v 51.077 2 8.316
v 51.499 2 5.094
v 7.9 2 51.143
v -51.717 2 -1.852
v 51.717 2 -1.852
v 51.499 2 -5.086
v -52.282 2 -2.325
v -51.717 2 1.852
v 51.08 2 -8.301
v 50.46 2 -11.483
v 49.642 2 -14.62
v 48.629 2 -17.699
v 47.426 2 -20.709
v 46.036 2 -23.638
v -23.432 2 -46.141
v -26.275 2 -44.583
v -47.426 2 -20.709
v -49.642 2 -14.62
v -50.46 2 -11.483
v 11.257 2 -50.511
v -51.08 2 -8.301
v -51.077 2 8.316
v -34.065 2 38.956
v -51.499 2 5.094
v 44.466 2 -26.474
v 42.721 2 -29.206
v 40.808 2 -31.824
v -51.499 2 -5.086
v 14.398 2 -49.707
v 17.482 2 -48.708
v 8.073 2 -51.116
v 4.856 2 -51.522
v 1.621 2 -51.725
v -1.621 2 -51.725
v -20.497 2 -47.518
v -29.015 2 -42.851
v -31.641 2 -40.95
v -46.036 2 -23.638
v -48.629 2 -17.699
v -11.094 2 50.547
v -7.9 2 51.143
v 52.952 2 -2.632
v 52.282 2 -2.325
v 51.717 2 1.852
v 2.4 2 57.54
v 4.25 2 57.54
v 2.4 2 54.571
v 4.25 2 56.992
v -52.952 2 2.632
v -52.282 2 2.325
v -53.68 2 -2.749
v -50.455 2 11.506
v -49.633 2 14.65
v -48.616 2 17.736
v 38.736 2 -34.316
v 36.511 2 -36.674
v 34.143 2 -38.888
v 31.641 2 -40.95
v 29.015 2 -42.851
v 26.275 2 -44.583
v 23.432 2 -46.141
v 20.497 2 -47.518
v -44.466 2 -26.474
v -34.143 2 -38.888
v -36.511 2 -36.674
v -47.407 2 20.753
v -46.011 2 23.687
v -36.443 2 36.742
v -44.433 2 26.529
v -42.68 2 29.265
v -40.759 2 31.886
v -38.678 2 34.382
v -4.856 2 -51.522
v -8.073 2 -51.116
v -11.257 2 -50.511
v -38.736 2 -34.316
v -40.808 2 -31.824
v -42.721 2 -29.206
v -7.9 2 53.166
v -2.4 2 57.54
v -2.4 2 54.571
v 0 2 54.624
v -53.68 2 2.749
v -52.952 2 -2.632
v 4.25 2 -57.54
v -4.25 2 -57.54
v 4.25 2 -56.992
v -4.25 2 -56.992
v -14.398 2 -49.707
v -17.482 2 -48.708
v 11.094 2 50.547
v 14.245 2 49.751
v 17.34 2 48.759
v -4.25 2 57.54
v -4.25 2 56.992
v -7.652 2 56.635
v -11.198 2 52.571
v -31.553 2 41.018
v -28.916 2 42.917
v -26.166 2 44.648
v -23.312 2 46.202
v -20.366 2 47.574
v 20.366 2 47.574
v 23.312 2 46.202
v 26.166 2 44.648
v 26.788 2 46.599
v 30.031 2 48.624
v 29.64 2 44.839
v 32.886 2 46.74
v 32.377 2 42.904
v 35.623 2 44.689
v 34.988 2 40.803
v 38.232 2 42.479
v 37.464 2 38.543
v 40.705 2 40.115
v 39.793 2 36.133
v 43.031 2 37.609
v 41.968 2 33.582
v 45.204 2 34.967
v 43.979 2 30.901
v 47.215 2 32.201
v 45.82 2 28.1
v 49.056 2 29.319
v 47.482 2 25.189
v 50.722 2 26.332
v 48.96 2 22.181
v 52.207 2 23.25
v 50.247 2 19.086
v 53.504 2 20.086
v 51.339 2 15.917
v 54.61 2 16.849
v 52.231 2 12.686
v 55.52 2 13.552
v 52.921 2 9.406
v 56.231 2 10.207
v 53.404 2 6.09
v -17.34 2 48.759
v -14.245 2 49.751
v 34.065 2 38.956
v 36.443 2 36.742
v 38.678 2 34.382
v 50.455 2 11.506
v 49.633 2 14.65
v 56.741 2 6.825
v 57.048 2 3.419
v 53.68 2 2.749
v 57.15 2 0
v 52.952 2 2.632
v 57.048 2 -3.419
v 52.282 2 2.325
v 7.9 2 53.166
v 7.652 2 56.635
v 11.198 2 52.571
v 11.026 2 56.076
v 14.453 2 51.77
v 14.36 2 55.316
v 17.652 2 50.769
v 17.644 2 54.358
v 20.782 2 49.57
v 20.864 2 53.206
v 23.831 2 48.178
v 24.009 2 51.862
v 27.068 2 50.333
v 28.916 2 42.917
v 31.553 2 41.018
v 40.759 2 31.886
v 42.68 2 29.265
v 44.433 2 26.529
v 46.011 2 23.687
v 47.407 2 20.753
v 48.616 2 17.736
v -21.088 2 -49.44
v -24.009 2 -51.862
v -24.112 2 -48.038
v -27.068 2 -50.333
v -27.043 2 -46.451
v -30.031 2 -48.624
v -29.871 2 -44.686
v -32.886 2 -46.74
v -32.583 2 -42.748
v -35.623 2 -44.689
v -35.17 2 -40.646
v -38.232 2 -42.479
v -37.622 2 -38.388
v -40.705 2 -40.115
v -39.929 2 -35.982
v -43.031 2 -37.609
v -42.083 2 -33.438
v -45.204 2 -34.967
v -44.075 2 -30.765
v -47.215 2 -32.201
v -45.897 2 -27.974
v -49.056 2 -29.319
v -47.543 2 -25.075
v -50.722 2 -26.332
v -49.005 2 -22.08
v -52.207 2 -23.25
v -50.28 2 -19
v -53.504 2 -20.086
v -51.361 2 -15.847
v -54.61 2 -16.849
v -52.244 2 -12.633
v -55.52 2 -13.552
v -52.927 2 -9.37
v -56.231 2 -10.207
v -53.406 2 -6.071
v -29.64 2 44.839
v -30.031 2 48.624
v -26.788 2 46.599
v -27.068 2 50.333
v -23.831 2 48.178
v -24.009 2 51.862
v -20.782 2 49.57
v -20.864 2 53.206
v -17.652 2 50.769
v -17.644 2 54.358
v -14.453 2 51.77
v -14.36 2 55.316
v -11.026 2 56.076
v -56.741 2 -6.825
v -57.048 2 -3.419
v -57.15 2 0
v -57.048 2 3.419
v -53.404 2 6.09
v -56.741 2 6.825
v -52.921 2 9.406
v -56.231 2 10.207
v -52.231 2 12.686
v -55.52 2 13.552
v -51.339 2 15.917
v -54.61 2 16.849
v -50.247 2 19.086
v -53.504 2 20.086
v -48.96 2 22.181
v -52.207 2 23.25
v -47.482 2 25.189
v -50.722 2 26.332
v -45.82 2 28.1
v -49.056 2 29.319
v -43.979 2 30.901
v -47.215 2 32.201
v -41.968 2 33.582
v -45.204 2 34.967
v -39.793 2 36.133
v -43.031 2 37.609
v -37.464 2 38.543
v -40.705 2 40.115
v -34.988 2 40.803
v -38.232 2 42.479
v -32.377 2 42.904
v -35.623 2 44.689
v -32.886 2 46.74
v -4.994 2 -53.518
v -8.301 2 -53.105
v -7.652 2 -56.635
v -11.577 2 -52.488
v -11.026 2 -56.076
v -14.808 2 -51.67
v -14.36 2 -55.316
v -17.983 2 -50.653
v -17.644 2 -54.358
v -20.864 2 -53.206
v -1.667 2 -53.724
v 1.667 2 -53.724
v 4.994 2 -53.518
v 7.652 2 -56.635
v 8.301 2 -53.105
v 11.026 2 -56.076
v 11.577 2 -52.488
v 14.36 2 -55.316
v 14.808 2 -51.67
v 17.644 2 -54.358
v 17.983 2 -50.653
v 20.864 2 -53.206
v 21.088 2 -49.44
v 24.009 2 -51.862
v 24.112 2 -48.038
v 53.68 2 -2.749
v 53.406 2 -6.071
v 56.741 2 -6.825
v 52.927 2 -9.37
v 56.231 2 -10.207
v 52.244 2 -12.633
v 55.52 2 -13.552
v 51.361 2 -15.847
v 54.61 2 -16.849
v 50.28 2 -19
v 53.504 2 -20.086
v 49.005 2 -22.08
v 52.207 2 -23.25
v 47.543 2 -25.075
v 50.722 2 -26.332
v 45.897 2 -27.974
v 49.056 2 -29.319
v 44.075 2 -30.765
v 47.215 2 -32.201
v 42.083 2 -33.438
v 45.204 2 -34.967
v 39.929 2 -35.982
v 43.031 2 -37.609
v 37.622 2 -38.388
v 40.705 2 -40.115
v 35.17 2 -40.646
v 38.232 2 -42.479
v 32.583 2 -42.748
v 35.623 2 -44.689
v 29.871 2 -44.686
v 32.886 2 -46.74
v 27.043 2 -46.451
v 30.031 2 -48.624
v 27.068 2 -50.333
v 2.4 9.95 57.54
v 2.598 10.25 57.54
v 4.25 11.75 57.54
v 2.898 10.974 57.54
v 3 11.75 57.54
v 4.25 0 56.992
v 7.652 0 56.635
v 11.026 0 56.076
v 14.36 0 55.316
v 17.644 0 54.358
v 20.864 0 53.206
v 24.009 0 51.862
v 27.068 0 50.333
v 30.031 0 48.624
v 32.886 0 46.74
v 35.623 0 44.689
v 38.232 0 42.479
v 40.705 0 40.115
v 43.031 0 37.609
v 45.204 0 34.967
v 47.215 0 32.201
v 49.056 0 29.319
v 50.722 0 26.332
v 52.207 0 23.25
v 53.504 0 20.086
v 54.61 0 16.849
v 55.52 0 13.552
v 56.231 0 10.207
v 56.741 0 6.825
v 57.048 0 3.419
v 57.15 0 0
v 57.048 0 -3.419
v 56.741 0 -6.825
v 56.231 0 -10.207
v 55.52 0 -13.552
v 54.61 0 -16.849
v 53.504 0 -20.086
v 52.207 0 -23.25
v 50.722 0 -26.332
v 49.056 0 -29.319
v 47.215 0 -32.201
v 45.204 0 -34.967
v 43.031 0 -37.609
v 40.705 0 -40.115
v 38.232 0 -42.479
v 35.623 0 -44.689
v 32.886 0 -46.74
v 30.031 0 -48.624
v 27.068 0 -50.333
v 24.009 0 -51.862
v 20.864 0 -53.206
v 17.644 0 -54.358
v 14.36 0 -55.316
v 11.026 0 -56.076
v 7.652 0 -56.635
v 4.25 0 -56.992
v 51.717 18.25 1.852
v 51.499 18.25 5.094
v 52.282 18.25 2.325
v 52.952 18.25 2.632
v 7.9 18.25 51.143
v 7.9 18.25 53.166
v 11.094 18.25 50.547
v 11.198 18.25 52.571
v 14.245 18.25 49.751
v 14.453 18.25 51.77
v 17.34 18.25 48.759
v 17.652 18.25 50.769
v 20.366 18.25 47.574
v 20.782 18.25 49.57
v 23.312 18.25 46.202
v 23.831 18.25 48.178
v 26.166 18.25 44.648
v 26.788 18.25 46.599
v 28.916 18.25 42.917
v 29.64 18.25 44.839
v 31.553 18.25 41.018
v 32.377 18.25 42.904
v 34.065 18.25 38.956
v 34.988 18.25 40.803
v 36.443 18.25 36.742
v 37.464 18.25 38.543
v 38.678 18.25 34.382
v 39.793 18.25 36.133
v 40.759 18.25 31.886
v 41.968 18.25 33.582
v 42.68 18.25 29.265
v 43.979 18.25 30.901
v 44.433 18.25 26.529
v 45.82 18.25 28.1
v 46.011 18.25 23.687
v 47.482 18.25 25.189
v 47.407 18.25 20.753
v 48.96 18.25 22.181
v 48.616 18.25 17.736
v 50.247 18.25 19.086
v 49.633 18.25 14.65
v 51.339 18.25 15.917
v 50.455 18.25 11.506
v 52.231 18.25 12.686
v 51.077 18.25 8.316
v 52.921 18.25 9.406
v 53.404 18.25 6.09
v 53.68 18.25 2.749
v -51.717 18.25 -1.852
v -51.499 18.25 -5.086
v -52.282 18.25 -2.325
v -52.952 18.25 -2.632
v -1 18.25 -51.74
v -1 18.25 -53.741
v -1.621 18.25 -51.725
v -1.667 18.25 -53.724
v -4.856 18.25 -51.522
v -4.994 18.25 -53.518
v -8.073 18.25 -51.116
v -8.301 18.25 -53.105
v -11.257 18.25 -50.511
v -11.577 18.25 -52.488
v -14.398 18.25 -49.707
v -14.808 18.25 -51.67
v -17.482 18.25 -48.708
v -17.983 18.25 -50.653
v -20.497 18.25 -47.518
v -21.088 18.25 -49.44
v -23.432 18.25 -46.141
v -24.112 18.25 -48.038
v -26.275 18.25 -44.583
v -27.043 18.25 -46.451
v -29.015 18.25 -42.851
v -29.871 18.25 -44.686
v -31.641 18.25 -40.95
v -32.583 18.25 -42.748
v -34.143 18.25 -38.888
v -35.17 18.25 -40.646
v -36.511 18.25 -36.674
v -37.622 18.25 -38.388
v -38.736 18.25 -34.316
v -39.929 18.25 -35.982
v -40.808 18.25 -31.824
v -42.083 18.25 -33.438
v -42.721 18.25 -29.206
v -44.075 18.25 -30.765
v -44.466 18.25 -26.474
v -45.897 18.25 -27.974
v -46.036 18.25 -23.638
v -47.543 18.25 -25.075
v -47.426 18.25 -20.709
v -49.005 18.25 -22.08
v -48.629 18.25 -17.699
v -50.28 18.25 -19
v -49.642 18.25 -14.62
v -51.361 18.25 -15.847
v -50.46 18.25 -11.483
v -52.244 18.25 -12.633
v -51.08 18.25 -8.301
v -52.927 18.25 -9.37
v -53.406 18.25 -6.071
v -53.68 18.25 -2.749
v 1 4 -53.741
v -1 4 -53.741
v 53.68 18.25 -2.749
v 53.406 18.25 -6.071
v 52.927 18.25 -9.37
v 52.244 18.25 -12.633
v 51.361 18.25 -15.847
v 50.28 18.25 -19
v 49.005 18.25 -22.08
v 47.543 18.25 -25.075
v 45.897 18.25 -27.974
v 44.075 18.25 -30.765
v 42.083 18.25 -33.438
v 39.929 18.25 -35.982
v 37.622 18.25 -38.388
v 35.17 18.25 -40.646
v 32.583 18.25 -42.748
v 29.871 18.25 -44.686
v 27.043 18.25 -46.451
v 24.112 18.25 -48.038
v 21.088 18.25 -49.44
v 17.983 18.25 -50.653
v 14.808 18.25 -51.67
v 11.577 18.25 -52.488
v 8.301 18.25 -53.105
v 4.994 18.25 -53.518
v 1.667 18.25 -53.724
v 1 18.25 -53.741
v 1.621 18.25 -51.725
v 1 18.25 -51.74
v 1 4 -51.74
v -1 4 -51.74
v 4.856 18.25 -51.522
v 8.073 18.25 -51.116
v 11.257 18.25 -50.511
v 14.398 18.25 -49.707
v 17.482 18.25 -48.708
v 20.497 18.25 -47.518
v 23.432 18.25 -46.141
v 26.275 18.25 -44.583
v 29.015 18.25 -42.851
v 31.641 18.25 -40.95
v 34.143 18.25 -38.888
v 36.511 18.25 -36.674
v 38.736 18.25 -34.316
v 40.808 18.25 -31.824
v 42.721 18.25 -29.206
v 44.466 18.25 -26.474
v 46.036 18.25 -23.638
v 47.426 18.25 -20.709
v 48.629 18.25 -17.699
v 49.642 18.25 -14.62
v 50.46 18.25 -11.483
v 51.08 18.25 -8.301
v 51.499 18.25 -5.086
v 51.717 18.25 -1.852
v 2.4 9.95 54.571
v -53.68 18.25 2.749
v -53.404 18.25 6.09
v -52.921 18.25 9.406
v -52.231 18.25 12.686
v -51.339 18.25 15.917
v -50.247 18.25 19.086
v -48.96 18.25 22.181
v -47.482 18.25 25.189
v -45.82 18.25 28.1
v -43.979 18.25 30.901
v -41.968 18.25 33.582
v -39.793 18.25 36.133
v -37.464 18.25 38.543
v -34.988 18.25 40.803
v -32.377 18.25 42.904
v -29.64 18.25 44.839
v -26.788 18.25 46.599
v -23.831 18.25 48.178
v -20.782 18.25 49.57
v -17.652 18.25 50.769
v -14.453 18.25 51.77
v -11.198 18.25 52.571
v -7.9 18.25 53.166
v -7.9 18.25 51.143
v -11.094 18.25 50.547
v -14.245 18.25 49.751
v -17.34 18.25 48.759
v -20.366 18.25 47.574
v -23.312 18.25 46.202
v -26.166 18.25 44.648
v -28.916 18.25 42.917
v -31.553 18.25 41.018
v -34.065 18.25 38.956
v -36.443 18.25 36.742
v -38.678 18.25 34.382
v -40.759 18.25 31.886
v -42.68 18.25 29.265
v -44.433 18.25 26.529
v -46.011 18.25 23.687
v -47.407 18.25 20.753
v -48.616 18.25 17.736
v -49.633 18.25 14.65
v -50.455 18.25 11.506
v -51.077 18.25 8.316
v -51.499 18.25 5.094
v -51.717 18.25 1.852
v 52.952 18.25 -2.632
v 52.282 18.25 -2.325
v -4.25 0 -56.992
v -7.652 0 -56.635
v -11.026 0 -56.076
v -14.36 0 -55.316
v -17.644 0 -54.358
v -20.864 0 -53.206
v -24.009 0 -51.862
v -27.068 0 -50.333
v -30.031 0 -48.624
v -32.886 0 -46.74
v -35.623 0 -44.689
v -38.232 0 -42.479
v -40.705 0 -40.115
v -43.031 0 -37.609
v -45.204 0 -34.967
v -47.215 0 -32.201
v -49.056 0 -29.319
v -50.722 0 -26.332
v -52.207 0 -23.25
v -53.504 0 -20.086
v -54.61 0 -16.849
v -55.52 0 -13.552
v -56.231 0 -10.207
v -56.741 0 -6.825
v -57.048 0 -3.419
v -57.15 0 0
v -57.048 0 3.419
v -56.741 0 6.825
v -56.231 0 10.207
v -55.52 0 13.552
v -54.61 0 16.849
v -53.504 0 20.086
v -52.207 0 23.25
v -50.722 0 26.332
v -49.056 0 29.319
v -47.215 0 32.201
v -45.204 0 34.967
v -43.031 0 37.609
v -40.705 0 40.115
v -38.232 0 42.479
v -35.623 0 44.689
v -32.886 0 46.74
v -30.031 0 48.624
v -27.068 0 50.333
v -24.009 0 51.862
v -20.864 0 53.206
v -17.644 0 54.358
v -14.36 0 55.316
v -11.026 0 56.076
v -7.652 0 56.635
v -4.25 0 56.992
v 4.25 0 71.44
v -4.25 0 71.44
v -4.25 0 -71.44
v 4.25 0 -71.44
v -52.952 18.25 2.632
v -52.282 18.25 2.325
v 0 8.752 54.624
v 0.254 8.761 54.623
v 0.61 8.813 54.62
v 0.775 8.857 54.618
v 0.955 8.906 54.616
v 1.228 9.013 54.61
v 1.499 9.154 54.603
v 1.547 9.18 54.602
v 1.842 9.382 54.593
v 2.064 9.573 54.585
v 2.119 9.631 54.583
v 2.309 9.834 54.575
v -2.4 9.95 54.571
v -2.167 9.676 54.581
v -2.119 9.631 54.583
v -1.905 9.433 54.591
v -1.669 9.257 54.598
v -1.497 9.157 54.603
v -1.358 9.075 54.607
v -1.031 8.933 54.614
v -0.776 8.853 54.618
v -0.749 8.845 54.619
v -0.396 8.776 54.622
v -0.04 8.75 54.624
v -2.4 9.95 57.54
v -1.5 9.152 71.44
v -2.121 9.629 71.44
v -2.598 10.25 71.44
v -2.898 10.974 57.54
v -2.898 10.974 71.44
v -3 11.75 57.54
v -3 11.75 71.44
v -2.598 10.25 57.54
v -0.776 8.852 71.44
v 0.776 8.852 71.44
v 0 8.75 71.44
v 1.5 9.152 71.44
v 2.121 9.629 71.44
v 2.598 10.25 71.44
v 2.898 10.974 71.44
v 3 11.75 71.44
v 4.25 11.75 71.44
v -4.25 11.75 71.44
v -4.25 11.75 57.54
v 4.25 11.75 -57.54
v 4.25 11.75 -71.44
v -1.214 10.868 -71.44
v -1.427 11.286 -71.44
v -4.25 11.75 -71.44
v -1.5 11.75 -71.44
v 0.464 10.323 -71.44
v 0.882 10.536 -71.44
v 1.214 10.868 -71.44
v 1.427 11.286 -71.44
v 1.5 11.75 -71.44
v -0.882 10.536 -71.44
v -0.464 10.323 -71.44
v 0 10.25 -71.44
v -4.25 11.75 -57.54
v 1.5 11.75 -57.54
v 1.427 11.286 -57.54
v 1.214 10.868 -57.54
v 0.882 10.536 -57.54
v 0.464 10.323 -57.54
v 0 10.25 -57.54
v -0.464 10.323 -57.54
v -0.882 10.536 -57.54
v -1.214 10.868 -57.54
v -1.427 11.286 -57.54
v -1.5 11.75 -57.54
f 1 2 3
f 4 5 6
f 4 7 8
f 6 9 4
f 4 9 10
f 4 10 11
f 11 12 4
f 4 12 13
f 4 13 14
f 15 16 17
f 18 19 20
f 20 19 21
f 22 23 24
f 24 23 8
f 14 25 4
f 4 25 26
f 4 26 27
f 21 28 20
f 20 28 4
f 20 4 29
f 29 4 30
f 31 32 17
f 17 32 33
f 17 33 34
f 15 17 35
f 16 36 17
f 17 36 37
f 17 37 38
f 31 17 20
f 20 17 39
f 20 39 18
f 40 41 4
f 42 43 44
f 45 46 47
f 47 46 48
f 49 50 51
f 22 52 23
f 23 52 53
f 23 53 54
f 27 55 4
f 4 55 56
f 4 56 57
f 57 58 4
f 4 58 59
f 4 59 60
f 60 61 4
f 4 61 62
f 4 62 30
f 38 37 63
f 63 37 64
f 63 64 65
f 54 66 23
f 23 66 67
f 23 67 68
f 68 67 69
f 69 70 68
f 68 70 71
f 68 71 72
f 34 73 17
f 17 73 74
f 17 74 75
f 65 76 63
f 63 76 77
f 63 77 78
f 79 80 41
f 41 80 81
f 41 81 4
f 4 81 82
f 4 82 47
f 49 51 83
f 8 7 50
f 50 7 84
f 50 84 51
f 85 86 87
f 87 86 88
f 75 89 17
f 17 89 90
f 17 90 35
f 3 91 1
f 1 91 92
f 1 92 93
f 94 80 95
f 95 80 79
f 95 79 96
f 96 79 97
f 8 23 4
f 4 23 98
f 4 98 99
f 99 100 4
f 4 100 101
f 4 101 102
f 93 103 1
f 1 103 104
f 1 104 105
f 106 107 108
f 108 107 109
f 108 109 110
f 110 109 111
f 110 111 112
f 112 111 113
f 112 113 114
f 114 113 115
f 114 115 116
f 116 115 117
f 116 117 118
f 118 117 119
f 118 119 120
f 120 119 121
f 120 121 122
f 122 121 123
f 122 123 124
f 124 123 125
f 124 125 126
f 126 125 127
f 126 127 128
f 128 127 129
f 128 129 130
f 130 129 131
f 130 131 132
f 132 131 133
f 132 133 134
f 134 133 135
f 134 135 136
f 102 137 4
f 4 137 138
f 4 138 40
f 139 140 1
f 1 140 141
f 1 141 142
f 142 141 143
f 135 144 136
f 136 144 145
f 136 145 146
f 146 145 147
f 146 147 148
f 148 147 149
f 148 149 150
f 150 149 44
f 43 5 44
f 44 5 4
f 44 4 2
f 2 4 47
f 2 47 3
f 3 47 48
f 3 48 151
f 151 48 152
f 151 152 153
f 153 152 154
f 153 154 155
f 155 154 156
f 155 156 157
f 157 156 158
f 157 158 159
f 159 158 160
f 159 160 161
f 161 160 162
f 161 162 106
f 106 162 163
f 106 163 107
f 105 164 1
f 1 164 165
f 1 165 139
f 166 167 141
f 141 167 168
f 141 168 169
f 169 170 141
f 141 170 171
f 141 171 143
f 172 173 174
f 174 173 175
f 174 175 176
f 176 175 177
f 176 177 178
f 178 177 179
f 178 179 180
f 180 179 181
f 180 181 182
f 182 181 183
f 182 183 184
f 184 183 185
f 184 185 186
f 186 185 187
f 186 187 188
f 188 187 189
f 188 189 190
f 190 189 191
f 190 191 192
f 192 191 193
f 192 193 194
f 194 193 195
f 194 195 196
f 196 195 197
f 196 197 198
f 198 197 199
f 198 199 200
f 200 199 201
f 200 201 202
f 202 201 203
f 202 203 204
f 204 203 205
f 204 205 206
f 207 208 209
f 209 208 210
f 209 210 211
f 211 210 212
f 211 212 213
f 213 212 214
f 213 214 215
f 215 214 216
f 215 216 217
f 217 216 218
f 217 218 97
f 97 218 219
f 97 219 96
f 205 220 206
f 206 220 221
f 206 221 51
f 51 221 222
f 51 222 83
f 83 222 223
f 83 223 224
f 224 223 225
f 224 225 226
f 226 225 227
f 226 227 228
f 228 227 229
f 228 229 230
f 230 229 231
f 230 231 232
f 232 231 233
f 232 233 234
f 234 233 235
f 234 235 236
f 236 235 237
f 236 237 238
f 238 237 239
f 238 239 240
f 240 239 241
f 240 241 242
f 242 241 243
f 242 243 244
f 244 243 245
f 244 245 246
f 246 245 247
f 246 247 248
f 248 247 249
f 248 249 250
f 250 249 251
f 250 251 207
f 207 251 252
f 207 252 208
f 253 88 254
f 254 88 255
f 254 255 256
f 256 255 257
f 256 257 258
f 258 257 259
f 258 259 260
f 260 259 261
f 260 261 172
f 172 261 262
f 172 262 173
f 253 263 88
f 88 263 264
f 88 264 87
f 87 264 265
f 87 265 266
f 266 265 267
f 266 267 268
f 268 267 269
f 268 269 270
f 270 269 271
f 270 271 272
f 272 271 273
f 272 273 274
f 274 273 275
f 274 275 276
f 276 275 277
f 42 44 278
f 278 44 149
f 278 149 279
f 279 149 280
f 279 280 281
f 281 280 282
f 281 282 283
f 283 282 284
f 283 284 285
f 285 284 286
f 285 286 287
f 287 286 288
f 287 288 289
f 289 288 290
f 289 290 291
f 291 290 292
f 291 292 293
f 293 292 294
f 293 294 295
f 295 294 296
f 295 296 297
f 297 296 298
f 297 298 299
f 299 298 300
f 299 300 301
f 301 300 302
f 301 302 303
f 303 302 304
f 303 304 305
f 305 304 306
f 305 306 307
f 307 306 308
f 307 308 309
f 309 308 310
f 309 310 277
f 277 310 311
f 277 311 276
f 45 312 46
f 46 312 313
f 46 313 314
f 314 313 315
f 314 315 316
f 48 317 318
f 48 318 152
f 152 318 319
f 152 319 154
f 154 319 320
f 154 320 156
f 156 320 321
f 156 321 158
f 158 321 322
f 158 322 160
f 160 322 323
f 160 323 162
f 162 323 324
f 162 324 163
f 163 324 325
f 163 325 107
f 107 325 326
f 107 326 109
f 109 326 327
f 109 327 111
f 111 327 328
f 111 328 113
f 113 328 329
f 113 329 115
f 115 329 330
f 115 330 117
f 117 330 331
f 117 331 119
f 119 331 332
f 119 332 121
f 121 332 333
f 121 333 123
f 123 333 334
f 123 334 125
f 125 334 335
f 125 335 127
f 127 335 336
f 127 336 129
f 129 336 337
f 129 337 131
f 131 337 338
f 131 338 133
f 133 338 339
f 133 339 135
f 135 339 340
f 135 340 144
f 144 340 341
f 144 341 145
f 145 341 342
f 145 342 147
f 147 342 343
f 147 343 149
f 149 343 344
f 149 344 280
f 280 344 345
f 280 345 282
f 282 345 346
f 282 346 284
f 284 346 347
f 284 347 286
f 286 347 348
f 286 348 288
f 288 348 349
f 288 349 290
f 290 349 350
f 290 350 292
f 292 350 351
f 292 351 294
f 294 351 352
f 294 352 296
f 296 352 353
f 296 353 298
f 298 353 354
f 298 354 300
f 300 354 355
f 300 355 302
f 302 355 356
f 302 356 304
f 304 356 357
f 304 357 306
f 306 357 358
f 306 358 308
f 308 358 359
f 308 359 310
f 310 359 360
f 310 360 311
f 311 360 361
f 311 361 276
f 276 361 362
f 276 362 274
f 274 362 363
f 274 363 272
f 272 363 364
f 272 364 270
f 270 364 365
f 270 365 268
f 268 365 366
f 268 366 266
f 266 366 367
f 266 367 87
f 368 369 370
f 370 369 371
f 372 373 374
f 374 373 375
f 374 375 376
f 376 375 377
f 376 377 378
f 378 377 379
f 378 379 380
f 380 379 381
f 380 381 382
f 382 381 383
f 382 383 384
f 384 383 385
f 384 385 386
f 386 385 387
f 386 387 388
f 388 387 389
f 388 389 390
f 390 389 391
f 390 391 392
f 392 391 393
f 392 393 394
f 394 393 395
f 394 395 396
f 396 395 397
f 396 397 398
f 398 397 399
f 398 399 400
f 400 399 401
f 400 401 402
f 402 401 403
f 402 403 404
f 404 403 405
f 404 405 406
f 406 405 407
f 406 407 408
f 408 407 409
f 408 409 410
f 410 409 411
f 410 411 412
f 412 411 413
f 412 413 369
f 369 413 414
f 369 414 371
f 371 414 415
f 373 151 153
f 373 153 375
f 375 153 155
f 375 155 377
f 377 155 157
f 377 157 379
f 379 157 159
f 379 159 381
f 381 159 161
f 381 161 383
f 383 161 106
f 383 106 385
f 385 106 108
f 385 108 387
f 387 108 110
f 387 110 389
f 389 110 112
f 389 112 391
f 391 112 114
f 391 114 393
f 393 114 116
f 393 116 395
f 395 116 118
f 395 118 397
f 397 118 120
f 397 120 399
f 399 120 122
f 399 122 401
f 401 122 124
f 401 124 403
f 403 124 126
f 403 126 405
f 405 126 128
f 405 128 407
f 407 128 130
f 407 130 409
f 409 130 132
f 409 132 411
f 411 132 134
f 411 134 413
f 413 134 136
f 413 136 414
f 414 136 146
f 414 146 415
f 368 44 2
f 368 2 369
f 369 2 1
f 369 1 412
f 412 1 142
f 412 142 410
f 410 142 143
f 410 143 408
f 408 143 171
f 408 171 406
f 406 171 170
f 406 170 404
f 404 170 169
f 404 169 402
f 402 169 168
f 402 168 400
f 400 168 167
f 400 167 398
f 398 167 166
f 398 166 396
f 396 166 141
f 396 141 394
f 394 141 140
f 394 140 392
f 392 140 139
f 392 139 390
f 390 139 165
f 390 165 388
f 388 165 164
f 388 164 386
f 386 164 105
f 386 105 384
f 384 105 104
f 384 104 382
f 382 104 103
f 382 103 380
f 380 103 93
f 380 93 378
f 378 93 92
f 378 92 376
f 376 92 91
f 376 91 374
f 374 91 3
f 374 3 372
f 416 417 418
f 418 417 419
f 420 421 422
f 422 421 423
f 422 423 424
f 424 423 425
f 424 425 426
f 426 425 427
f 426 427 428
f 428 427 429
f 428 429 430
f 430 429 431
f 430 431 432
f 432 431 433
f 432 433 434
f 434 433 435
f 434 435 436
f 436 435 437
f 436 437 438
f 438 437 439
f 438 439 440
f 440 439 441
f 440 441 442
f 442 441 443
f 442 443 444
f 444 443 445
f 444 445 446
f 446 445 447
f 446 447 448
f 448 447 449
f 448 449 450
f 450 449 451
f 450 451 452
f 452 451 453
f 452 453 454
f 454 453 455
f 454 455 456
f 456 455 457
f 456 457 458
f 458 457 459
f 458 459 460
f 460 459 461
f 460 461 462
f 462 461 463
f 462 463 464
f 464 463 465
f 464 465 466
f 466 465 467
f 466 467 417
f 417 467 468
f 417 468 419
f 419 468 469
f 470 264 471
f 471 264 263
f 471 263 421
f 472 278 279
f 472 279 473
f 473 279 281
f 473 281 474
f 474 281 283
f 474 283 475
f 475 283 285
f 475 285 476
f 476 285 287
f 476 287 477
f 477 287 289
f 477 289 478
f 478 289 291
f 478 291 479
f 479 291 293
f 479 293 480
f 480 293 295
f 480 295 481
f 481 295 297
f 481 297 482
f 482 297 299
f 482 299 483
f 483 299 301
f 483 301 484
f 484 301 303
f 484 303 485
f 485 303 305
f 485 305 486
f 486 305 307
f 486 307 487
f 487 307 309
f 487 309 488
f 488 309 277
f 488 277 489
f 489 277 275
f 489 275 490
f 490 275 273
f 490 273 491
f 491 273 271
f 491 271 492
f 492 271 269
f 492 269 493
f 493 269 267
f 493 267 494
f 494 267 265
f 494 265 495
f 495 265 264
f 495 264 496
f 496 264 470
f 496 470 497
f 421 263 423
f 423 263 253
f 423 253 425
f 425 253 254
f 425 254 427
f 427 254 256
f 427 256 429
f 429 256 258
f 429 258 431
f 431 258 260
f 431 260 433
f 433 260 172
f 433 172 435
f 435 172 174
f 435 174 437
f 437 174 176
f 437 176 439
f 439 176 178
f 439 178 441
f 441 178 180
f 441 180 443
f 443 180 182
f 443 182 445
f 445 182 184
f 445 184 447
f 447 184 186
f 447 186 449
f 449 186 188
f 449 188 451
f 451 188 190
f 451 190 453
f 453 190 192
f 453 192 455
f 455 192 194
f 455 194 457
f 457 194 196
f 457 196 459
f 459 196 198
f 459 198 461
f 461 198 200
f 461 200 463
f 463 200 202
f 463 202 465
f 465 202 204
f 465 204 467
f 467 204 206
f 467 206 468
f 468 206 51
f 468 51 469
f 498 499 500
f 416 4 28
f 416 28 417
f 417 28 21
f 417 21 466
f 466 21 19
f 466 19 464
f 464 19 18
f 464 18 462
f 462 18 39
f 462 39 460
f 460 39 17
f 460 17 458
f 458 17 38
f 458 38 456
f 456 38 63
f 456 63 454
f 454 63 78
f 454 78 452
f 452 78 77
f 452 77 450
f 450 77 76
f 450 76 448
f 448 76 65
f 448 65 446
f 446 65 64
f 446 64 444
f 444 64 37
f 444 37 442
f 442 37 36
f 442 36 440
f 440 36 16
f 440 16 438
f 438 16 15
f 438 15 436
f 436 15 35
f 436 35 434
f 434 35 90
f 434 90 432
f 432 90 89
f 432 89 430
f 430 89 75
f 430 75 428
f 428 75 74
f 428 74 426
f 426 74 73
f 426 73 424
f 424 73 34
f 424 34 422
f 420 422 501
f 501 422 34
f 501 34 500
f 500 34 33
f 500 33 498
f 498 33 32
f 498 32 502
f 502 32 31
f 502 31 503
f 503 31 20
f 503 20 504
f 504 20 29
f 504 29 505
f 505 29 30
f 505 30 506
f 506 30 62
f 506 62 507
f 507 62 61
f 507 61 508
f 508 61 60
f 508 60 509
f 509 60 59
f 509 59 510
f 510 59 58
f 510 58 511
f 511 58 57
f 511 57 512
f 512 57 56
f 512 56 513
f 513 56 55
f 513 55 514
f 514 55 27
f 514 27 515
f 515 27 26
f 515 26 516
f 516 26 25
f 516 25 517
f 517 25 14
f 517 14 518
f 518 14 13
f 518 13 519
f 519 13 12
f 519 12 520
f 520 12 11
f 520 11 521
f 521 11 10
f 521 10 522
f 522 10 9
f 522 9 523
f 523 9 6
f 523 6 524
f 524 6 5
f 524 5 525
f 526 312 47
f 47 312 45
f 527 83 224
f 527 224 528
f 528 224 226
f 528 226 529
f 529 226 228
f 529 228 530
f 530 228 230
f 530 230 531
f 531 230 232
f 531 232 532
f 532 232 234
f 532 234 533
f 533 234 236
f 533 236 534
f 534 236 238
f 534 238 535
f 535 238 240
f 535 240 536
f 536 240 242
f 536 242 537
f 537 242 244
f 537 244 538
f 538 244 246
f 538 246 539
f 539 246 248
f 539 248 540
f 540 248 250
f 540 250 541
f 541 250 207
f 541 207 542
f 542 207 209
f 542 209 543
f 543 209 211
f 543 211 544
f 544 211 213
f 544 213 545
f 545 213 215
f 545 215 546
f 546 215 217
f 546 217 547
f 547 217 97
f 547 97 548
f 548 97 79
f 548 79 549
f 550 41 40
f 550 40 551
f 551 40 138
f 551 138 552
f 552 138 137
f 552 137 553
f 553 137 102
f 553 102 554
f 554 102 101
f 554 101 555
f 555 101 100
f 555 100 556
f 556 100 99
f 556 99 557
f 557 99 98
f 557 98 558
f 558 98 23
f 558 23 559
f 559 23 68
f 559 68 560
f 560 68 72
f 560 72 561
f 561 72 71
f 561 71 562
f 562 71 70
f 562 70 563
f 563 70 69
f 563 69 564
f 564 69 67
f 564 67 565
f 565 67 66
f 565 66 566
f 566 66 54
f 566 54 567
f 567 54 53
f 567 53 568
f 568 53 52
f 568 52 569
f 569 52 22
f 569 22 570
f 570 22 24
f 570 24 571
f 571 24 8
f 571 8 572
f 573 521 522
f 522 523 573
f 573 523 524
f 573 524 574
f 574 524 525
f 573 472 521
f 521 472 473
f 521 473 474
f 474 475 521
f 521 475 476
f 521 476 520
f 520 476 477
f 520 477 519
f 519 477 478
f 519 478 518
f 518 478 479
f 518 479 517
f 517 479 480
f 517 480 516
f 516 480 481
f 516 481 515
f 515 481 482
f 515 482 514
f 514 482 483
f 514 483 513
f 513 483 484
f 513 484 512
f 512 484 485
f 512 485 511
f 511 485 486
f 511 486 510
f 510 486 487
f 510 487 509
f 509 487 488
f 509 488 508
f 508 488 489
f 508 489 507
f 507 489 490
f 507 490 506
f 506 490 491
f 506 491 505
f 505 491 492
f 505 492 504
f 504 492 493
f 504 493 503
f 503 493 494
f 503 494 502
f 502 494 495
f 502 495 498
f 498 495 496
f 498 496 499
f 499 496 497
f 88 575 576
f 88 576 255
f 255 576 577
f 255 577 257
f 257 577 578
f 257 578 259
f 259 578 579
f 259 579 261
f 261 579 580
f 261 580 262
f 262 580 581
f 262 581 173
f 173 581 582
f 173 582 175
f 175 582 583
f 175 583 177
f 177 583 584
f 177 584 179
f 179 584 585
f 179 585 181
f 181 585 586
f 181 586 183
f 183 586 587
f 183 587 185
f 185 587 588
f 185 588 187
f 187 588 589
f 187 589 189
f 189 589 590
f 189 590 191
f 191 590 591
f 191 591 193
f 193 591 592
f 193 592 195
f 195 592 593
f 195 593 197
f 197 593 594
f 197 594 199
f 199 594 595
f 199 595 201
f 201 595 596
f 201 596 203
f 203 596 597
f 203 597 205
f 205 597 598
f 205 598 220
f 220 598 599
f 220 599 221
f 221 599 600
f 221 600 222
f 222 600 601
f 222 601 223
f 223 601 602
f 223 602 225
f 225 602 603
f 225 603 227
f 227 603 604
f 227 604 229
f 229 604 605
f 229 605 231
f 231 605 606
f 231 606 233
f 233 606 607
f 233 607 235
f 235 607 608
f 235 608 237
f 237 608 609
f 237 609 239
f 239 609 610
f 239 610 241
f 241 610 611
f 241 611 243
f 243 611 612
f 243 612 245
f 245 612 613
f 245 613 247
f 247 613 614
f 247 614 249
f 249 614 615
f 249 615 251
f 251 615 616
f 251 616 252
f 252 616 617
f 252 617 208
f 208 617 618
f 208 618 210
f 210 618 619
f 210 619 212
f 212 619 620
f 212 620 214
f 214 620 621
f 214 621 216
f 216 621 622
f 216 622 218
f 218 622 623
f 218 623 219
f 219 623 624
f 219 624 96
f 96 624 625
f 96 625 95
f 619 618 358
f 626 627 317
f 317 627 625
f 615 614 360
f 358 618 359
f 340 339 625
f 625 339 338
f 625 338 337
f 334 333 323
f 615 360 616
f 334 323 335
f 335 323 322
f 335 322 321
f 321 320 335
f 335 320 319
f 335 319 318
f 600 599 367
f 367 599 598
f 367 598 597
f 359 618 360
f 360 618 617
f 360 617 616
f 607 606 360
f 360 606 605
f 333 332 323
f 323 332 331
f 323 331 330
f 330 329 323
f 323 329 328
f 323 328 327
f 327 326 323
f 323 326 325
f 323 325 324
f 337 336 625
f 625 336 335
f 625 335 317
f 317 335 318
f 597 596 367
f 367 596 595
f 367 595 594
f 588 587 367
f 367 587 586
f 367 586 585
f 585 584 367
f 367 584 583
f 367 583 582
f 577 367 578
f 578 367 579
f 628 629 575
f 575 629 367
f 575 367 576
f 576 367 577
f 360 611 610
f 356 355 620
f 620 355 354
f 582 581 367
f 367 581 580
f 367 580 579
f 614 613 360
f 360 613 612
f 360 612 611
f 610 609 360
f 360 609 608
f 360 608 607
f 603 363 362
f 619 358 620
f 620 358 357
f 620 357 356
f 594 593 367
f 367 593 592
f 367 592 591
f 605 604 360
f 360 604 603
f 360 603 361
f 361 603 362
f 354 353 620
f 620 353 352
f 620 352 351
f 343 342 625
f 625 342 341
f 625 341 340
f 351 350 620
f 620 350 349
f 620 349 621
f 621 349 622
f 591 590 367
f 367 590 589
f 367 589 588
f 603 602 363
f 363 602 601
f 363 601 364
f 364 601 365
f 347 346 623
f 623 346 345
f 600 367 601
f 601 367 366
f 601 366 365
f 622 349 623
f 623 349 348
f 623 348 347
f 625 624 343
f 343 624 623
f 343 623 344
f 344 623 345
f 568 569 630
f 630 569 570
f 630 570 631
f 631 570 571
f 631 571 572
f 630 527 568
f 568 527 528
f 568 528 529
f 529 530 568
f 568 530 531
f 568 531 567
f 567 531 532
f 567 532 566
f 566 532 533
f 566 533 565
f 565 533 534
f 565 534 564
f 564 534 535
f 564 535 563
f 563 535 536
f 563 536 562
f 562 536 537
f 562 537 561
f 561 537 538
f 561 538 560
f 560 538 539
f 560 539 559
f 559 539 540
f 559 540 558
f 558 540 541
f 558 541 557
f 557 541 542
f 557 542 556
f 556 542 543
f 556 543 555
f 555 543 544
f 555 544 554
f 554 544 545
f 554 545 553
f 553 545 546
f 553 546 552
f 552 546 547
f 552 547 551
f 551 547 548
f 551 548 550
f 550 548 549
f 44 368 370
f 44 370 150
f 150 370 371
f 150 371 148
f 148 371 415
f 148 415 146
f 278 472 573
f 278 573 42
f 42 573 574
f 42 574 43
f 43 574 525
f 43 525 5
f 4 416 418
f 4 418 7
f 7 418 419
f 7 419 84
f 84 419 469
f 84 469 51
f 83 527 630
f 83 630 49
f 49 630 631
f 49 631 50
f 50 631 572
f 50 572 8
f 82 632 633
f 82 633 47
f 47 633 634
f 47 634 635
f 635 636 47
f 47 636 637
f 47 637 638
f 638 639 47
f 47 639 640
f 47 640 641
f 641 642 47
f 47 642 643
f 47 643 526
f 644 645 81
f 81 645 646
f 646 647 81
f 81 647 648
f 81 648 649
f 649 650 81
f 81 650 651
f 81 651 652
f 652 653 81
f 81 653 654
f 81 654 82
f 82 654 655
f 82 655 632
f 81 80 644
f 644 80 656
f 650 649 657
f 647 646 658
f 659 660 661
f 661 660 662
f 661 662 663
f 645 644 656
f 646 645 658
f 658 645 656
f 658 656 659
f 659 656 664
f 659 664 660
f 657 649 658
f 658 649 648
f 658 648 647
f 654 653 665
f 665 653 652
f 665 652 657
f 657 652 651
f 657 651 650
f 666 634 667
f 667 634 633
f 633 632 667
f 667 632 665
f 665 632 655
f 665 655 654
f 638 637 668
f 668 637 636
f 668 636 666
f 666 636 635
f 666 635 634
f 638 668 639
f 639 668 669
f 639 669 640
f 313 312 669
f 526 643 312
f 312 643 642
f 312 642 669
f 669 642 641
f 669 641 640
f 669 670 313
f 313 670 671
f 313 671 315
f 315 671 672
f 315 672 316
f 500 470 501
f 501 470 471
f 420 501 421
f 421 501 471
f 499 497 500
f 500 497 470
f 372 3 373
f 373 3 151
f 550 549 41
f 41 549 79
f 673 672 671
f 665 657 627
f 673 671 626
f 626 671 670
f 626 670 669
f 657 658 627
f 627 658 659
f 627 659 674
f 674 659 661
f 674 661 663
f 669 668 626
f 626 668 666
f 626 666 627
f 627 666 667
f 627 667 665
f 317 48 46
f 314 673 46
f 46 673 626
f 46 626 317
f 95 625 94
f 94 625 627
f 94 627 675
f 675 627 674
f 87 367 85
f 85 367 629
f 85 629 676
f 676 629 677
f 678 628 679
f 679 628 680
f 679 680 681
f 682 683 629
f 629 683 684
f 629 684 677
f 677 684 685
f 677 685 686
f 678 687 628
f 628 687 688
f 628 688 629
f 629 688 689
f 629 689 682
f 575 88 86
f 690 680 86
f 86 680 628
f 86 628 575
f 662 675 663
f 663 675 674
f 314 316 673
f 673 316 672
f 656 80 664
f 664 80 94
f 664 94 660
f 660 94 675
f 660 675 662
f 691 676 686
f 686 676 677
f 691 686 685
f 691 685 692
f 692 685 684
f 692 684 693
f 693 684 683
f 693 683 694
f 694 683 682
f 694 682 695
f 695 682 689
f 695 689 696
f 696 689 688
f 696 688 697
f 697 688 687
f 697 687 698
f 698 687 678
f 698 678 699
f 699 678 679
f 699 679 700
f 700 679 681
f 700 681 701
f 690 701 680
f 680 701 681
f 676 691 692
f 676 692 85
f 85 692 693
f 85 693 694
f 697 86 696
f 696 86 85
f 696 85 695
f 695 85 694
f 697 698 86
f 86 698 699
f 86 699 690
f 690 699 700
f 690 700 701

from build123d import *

# Parameters (mm, degrees)
SKETCH1_R                = 57.15
BOSS_EXTRUDE1_DEPTH      = 2
SKETCH2_R                = 53.75
SKETCH2_R_2              = 51.75
BOSS_EXTRUDE2_DEPTH      = 16.25
CUT_EXTRUDE1_DEPTH       = 16.25
CUT_EXTRUDE2_DEPTH       = 6.8
BOSS_EXTRUDE5_DEPTH      = 16.25
CUT_EXTRUDE3_DEPTH       = 7.6
SKETCH9_W                = 2
SKETCH9_H                = 2
SKETCH9_H_2              = 12.25
CUT_EXTRUDE4_DEPTH       = 58.15
CUT_EXTRUDE5_DEPTH       = 16.25
SKETCH12_W               = 4.25
SKETCH12_H               = 14.29
SKETCH12_R               = 57.15
BOSS_EXTRUDE7_DEPTH      = 2
BOSS_EXTRUDE8_DEPTH      = 13.9
BOSS_EXTRUDE9_DEPTH      = 2
BOSS_EXTRUDE9_DEPTH_BACK = 2
BOSS_EXTRUDE10_DEPTH     = 13.9


with BuildPart() as part:
    # Sketch1 → Boss-Extrude1 (new body)
    with BuildSketch(Plane(origin=(0, 0, 0), x_dir=(1, 0, 0), z_dir=(0, 1, 0))):
        Circle(SKETCH1_R)
    extrude(amount=BOSS_EXTRUDE1_DEPTH)

    # Sketch2 → Boss-Extrude2 (add)
    with BuildSketch(Plane(origin=(0, 2, 0), x_dir=(1, 0, 0), z_dir=(0, 1, 0))):
        Circle(SKETCH2_R)
        Circle(SKETCH2_R_2, mode=Mode.SUBTRACT)
    extrude(amount=BOSS_EXTRUDE2_DEPTH)

    # Sketch4 → Cut-Extrude1 (cut)
    with BuildSketch(Plane(origin=(0, 18.25, 0), x_dir=(1, 0, 0), z_dir=(0, 1, 0))):
        with BuildLine():
            ThreePointArc((51.75, 0), (51.741714453, -0.926005111), (51.716860465, -1.851713701))
            ThreePointArc((51.716860465, -1.851713701), (52.606544101, -2.501001521), (53.679651163, -2.749100042))
            ThreePointArc((53.679651163, -2.749100042), (53.732409912, -1.375), (53.75, 0))
            ThreePointArc((53.75, 0), (53.732409912, 1.375), (53.679651163, 2.749100042))
            ThreePointArc((53.679651163, 2.749100042), (52.606544101, 2.501001521), (51.716860465, 1.851713701))
            ThreePointArc((51.716860465, 1.851713701), (51.741714453, 0.926005111), (51.75, 0))
        make_face()
        with BuildLine():
            ThreePointArc((-51.716860465, 1.851713701), (-51.75, 0), (-51.716860465, -1.851713701))
            ThreePointArc((-51.716860465, -1.851713701), (-52.606544101, -2.501001521), (-53.679651163, -2.749100042))
            ThreePointArc((-53.679651163, -2.749100042), (-53.75, 0), (-53.679651163, 2.749100042))
            ThreePointArc((-53.679651163, 2.749100042), (-52.606544101, 2.501001521), (-51.716860465, 1.851713701))
        make_face()
    extrude(amount=-CUT_EXTRUDE1_DEPTH, mode=Mode.SUBTRACT)

    # Sketch5 → Cut-Extrude2 (cut)
    with BuildSketch(Plane(origin=(0, 18.25, 0), x_dir=(1, 0, 0), z_dir=(0, 1, 0))):
        with BuildLine():
            Line((0, -53.75), (0, -51.75))
            ThreePointArc((0, -51.75), (-1.500631048, -51.728237999), (-3, -51.662970298))
            Line((-3, -51.662970298), (-3, -53.666213766))
            ThreePointArc((-3, -53.666213766), (-1.500584897, -53.729049358), (0, -53.75))
        make_face()
        with BuildLine():
            ThreePointArc((3, -51.662970298), (1.500631048, -51.728237999), (0, -51.75))
            Line((0, -51.75), (0, -53.75))
            ThreePointArc((0, -53.75), (1.500584897, -53.729049358), (3, -53.666213766))
            Line((3, -53.666213766), (3, -51.662970298))
        make_face()
    extrude(amount=-CUT_EXTRUDE2_DEPTH, mode=Mode.SUBTRACT)

    # Sketch7 → Boss-Extrude5 (add)
    with BuildSketch(Plane(origin=(0, 2, 0), x_dir=(1, 0, 0), z_dir=(0, 1, 0))):
        with BuildLine():
            Line((2.4, -54.571141496), (2.4, -57.099584062))
            ThreePointArc((2.4, -57.099584062), (0, -57.15), (-2.4, -57.099584062))
            Line((-2.4, -57.099584062), (-2.4, -54.571141496))
            ThreePointArc((-2.4, -54.571141496), (0, -54.623891148), (2.4, -54.571141496))
        make_face()
    extrude(amount=BOSS_EXTRUDE5_DEPTH)

    # Sketch8 → Cut-Extrude3 (cut)
    with BuildSketch(Plane.XY.offset(57.15)):
        with BuildLine():
            Line((2.4, 11.75), (2.4, 13.55))
            ThreePointArc((2.4, 13.55), (0, 14.75), (-2.4, 13.55))
            Line((-2.4, 13.55), (-2.4, 11.75))
            Line((-2.4, 11.75), (2.4, 11.75))
        make_face()
        with BuildLine():
            Line((2.4, 9.95), (2.4, 11.75))
            Line((2.4, 11.75), (-2.4, 11.75))
            Line((-2.4, 11.75), (-2.4, 9.95))
            ThreePointArc((-2.4, 9.95), (0, 8.75), (2.4, 9.95))
        make_face()
        with BuildLine():
            Line((2.4, 11.75), (2.4, 13.55))
            ThreePointArc((2.4, 13.55), (0, 14.75), (-2.4, 13.55))
            Line((-2.4, 13.55), (-2.4, 11.75))
            Line((-2.4, 11.75), (2.4, 11.75))
        make_face()
        with BuildLine():
            Line((2.4, 9.95), (2.4, 11.75))
            Line((2.4, 11.75), (-2.4, 11.75))
            Line((-2.4, 11.75), (-2.4, 9.95))
            ThreePointArc((-2.4, 9.95), (0, 8.75), (2.4, 9.95))
        make_face()
        with BuildLine():
            Line((2.4, 13.55), (2.4, 18.25))
            Line((2.4, 18.25), (-2.4, 18.25))
            Line((-2.4, 18.25), (-2.4, 13.55))
            ThreePointArc((-2.4, 13.55), (0, 14.75), (2.4, 13.55))
        make_face()
        with BuildLine():
            ThreePointArc((3, 11.75), (2.846049894, 12.698683298), (2.4, 13.55))
            Line((2.4, 13.55), (2.4, 11.75))
            Line((2.4, 11.75), (2.4, 9.95))
            ThreePointArc((2.4, 9.95), (2.846049894, 10.801316702), (3, 11.75))
        make_face()
        with BuildLine():
            Line((-2.4, 11.75), (-2.4, 13.55))
            ThreePointArc((-2.4, 13.55), (-3, 11.75), (-2.4, 9.95))
            Line((-2.4, 9.95), (-2.4, 11.75))
        make_face()
    extrude(amount=-CUT_EXTRUDE3_DEPTH, mode=Mode.SUBTRACT)

    # Sketch9 → Cut-Extrude4 (cut, through all)
    with BuildSketch(Plane.XY):
        with Locations((0, 5)):
            Rectangle(SKETCH9_W, SKETCH9_H)
        with Locations((0, 12.125)):
            Rectangle(SKETCH9_W, SKETCH9_H_2)
    extrude(amount=-CUT_EXTRUDE4_DEPTH, mode=Mode.SUBTRACT)

    # Sketch11 → Cut-Extrude5 (cut)
    with BuildSketch(Plane(origin=(0, 18.25, 0), x_dir=(1, 0, 0), z_dir=(0, 1, 0))):
        with BuildLine():
            Line((7.9, -53.166272203), (7.9, -51.143450216))
            ThreePointArc((7.9, -51.143450216), (5.456186881, -51.461563567), (3, -51.662970298))
            Line((3, -51.662970298), (3, -53.666213766))
            ThreePointArc((3, -53.666213766), (5.455729593, -53.472399559), (7.9, -53.166272203))
        make_face()
        with BuildLine():
            ThreePointArc((-3, -51.662970298), (-5.456186881, -51.461563567), (-7.9, -51.143450216))
            Line((-7.9, -51.143450216), (-7.9, -53.166272203))
            ThreePointArc((-7.9, -53.166272203), (-5.455729593, -53.472399559), (-3, -53.666213766))
            Line((-3, -53.666213766), (-3, -51.662970298))
        make_face()
        with BuildLine():
            Line((7.9, -51.143450216), (7.9, -49.368739918))
            Line((7.9, -49.368739918), (-7.9, -49.368739918))
            Line((-7.9, -49.368739918), (-7.9, -51.143450216))
            ThreePointArc((-7.9, -51.143450216), (-5.456186881, -51.461563567), (-3, -51.662970298))
            Line((-3, -51.662970298), (-3, -53.666213766))
            ThreePointArc((-3, -53.666213766), (-5.455729593, -53.472399559), (-7.9, -53.166272203))
            Line((-7.9, -53.166272203), (-7.9, -53.957200677))
            Line((-7.9, -53.957200677), (7.9, -53.957200677))
            Line((7.9, -53.957200677), (7.9, -53.166272203))
            ThreePointArc((7.9, -53.166272203), (5.455729593, -53.472399559), (3, -53.666213766))
            Line((3, -53.666213766), (3, -51.662970298))
            ThreePointArc((3, -51.662970298), (5.456186881, -51.461563567), (7.9, -51.143450216))
        make_face()
    extrude(amount=-CUT_EXTRUDE5_DEPTH, mode=Mode.SUBTRACT)

    # Sketch12 → Boss-Extrude7 (add)
    with BuildSketch(Plane.XZ):
        with Locations((2.125, 64.295)):
            Rectangle(SKETCH12_W, SKETCH12_H)
        with Locations((-2.125, 64.295)):
            Rectangle(SKETCH12_W, SKETCH12_H)
        with BuildLine():
            Line((4.25, 57.15), (0, 57.15))
            ThreePointArc((0, 57.15), (2.126472541, 57.110424745), (4.25, 56.991753789))
            Line((4.25, 56.991753789), (4.25, 57.15))
        make_face()
        with BuildLine():
            ThreePointArc((-4.25, 56.991753789), (-2.126472541, 57.110424745), (0, 57.15))
            Line((0, 57.15), (-4.25, 57.15))
            Line((-4.25, 57.15), (-4.25, 56.991753789))
        make_face()
        with Locations((2.125, -64.295)):
            Rectangle(SKETCH12_W, SKETCH12_H)
        with Locations((-2.125, -64.295)):
            Rectangle(SKETCH12_W, SKETCH12_H)
        with BuildLine():
            ThreePointArc((0, -57.15), (-2.126472541, -57.110424745), (-4.25, -56.991753789))
            Line((-4.25, -56.991753789), (-4.25, -57.15))
            Line((-4.25, -57.15), (0, -57.15))
        make_face()
        with BuildLine():
            Line((4.25, -57.15), (4.25, -56.991753789))
            ThreePointArc((4.25, -56.991753789), (2.126472541, -57.110424745), (0, -57.15))
            Line((0, -57.15), (4.25, -57.15))
        make_face()
        Circle(SKETCH12_R)
    extrude(amount=-BOSS_EXTRUDE7_DEPTH)

    # Sketch13 → Boss-Extrude8 (add)
    with BuildSketch(Plane.XY.offset(71.44)):
        with BuildLine():
            Line((-3, 11.75), (-4.25, 11.75))
            Line((-4.25, 11.75), (-4.25, 2))
            Line((-4.25, 2), (4.25, 2))
            Line((4.25, 2), (4.25, 11.75))
            Line((4.25, 11.75), (3, 11.75))
            ThreePointArc((3, 11.75), (0, 8.75), (-3, 11.75))
        make_face()
    extrude(amount=-BOSS_EXTRUDE8_DEPTH)

    # Sketch14 → Boss-Extrude9 (add, two sides)
    with BuildSketch(Plane.XY.offset(57.15)) as boss_extrude9_sk:
        with BuildLine():
            Line((-2.4, 2), (2.4, 2))
            Line((2.4, 2), (2.4, 9.95))
            ThreePointArc((2.4, 9.95), (0, 8.75), (-2.4, 9.95))
            Line((-2.4, 9.95), (-2.4, 2))
        make_face()
    extrude(amount=BOSS_EXTRUDE9_DEPTH)
    extrude(boss_extrude9_sk.sketch, amount=-BOSS_EXTRUDE9_DEPTH_BACK)

    # Sketch15 → Boss-Extrude10 (add)
    with BuildSketch(Plane(origin=(0, 0, -71.44), x_dir=(-1, 0, 0), z_dir=(0, 0, -1))):
        with BuildLine():
            Line((-1.5, 11.75), (-4.25, 11.75))
            Line((-4.25, 11.75), (-4.25, 0))
            Line((-4.25, 0), (4.25, 0))
            Line((4.25, 0), (4.25, 11.75))
            Line((4.25, 11.75), (1.5, 11.75))
            ThreePointArc((1.5, 11.75), (0, 10.25), (-1.5, 11.75))
        make_face()
    extrude(amount=-BOSS_EXTRUDE10_DEPTH)


solid = part.part
